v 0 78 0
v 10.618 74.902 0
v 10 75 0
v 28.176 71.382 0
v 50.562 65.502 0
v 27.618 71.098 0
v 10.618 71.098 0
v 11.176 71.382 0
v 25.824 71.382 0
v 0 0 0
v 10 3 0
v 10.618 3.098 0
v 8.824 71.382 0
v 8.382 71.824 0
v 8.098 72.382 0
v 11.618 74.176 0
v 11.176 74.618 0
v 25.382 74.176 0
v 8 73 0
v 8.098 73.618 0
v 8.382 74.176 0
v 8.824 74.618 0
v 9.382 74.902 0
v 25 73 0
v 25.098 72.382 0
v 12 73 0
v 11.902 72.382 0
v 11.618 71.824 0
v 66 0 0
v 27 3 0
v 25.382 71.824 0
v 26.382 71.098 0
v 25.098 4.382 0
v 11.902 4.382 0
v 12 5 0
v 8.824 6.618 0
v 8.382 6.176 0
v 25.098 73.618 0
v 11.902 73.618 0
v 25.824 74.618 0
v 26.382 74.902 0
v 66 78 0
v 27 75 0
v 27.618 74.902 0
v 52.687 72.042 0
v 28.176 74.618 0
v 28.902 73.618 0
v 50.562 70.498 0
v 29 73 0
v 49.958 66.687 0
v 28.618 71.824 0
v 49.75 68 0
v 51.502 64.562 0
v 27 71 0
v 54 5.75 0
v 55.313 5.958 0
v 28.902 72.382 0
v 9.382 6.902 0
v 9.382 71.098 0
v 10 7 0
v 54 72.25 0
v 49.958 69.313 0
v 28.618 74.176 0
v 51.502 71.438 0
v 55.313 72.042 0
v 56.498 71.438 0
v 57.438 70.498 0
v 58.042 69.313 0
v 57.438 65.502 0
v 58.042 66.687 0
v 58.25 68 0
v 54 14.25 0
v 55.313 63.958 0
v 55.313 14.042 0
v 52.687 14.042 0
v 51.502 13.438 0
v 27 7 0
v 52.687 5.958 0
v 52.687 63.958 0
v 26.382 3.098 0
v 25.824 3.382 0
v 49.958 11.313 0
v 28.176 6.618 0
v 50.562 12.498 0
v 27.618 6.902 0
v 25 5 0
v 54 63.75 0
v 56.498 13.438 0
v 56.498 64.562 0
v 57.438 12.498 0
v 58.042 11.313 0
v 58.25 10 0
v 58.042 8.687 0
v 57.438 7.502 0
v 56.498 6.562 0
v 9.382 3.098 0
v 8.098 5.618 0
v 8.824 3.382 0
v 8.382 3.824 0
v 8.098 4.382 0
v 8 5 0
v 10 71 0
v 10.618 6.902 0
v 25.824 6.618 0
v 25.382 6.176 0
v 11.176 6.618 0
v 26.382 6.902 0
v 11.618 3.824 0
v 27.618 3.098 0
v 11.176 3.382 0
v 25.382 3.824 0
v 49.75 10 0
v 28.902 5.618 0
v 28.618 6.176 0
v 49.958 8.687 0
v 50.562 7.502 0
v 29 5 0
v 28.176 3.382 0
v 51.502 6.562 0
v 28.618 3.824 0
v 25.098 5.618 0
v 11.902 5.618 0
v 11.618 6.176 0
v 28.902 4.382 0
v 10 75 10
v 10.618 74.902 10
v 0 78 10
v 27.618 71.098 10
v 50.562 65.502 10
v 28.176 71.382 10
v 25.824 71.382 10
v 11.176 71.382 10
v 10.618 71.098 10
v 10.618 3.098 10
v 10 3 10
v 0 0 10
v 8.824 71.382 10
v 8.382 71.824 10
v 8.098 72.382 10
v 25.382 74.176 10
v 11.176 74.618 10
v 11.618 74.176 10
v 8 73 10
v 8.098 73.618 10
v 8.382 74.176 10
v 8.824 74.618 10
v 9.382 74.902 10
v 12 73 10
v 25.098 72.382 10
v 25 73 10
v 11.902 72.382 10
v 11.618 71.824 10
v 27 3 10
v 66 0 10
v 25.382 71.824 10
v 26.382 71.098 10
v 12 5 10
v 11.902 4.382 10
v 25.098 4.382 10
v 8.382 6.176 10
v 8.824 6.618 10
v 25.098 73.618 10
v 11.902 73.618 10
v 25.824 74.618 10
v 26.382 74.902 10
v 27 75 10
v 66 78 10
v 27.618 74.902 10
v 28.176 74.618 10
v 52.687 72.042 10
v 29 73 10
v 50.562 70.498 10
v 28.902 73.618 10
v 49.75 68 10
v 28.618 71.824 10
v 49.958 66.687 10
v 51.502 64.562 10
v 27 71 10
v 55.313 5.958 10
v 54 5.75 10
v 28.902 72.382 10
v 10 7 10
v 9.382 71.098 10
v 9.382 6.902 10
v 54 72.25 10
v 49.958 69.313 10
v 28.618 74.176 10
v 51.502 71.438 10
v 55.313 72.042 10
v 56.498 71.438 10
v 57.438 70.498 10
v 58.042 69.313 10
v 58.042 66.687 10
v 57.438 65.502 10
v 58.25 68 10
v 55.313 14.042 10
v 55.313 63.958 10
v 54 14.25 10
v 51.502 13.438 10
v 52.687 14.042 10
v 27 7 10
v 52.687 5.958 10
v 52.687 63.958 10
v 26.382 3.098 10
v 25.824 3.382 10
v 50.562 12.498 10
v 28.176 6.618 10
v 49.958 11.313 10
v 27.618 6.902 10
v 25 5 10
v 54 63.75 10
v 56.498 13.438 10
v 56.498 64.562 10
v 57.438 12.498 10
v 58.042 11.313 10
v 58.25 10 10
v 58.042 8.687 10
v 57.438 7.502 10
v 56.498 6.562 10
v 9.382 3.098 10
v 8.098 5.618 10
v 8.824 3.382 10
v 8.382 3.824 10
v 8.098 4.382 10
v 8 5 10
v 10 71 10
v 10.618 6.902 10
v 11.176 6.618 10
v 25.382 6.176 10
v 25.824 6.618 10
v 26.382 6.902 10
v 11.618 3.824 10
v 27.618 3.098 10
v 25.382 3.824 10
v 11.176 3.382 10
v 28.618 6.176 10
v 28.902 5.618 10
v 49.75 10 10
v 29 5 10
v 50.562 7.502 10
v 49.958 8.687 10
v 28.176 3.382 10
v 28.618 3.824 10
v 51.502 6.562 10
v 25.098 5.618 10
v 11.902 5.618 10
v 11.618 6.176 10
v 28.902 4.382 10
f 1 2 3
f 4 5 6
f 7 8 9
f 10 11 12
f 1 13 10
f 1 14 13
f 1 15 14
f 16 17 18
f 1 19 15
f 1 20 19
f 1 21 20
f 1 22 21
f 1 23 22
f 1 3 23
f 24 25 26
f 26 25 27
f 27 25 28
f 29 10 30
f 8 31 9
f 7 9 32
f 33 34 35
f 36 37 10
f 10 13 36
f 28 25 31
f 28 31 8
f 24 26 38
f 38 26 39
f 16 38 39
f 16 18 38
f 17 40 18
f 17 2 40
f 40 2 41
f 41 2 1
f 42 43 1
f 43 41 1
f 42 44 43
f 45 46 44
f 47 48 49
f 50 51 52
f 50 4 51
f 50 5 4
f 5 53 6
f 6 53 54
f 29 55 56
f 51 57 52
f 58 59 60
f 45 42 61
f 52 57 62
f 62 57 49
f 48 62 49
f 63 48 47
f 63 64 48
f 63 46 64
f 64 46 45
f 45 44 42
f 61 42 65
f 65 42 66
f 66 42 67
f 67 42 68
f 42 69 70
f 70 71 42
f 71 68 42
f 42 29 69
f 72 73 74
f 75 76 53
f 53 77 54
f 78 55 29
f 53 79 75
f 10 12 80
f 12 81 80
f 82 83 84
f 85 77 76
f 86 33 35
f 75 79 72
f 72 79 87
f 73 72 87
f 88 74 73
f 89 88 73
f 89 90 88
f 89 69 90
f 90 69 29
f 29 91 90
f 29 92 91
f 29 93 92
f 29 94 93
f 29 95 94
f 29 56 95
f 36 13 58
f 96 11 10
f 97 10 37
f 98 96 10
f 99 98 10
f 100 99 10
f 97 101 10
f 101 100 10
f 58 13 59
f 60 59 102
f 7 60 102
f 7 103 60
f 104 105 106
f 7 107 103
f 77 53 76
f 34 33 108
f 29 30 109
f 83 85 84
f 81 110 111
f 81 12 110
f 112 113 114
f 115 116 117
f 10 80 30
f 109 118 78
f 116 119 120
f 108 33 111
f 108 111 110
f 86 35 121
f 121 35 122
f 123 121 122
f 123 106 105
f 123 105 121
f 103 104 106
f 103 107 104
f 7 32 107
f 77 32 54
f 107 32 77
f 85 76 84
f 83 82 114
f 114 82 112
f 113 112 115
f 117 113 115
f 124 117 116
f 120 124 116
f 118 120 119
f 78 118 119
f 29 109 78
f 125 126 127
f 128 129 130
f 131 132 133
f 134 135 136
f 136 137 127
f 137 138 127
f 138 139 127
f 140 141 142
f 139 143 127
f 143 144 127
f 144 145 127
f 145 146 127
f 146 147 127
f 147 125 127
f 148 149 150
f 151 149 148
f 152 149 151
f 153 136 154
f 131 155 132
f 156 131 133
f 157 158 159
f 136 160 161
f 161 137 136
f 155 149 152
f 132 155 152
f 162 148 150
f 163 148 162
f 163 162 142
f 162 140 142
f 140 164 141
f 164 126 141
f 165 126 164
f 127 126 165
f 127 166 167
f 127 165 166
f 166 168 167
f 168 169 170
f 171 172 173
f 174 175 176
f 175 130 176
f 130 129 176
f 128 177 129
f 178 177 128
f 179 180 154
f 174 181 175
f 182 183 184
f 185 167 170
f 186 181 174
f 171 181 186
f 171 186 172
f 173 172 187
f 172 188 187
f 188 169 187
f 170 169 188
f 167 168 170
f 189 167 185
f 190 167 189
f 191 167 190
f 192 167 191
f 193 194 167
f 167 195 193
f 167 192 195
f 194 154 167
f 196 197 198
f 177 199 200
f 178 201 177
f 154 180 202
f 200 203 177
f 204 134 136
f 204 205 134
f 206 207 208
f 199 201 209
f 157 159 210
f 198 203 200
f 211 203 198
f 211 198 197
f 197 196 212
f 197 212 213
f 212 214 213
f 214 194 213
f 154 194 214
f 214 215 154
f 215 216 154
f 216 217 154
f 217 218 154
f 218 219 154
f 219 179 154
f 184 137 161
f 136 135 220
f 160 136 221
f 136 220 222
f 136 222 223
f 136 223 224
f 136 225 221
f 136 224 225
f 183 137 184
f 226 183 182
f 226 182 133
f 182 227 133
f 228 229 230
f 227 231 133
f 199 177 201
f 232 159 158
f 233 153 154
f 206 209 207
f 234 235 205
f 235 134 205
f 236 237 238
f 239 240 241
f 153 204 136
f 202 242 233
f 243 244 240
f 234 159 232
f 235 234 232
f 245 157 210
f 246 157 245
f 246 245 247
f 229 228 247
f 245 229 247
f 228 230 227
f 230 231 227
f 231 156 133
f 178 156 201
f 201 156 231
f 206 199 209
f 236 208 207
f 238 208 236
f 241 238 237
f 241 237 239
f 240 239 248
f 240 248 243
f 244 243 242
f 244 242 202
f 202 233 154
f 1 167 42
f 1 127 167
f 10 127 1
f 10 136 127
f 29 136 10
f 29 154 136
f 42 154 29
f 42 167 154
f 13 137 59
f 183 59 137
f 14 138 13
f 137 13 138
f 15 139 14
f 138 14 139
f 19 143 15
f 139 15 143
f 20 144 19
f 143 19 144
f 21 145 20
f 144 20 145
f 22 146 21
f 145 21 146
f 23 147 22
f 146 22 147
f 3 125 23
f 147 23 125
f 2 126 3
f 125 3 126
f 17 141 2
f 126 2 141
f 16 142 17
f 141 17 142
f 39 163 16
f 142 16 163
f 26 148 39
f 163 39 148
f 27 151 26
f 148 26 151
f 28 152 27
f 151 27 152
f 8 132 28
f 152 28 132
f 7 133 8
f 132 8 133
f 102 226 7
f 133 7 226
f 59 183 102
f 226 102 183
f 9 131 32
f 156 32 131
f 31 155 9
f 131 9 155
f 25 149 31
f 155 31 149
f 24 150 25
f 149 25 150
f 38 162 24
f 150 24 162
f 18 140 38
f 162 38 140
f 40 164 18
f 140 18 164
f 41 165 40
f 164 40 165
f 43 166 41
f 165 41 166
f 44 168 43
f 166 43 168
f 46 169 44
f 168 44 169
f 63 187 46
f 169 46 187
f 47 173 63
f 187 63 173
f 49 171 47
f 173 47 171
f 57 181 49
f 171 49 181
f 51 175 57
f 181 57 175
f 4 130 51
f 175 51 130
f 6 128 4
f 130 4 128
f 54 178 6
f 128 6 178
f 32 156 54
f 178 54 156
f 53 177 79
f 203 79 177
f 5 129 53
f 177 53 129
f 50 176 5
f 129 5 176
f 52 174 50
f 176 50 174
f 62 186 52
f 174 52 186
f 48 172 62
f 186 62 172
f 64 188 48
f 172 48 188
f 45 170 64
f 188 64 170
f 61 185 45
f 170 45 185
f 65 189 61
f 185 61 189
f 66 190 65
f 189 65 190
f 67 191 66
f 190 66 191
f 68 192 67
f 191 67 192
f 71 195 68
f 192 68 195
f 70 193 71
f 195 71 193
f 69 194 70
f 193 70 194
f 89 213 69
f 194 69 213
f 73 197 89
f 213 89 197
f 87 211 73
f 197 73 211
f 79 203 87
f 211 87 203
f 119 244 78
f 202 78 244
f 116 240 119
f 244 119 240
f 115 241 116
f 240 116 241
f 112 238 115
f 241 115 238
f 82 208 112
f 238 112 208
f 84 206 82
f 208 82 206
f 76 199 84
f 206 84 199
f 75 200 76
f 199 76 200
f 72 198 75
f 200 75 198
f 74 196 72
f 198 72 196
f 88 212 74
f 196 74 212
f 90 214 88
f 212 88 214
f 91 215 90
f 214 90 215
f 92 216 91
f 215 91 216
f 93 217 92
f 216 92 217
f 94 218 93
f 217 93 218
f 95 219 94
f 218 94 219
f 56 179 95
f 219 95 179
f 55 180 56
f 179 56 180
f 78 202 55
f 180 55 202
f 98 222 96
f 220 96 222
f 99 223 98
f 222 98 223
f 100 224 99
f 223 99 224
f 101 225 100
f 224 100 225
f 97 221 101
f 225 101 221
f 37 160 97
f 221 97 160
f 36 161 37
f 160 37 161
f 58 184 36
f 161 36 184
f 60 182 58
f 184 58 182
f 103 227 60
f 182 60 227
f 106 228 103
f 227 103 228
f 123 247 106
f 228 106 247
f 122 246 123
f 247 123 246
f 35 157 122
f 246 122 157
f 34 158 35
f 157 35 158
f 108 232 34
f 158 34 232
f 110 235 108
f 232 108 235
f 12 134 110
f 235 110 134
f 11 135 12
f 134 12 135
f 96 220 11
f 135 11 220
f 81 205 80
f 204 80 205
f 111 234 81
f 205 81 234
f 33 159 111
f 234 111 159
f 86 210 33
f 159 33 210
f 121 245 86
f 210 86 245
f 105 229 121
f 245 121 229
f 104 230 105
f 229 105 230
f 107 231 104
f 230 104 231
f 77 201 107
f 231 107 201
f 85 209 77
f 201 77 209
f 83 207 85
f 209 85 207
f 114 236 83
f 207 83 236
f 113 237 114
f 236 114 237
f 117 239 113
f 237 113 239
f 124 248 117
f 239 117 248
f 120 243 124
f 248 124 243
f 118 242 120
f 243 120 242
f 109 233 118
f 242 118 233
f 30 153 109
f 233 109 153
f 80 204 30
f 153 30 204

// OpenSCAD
/*
 * @name Replimat laser module to 4040 Extrusion adapter
 * @author Timothy Schmidt
 * @date 2020
 * @url http://www.github.com/timschmidt/replimat
 * @license http://www.gnu.org/licenses/agpl-3.0.en.html
 * @license https://www.tapr.org/TAPR_Open_Hardware_License_v1.0.txt
 */


$fn=20;

linear_extrude(height=10){
difference(){
square([66,78]);

translate([10,5,0])
union(){
circle(d=4);
translate([17,0,0])
    circle(d=4);
translate([0,68,0])
    circle(d=4);
translate([17,68,0])
    circle(d=4);
}

translate([54,10,0])
circle(d=8.5);

translate([54,68,0])
circle(d=8.5);

}
}
